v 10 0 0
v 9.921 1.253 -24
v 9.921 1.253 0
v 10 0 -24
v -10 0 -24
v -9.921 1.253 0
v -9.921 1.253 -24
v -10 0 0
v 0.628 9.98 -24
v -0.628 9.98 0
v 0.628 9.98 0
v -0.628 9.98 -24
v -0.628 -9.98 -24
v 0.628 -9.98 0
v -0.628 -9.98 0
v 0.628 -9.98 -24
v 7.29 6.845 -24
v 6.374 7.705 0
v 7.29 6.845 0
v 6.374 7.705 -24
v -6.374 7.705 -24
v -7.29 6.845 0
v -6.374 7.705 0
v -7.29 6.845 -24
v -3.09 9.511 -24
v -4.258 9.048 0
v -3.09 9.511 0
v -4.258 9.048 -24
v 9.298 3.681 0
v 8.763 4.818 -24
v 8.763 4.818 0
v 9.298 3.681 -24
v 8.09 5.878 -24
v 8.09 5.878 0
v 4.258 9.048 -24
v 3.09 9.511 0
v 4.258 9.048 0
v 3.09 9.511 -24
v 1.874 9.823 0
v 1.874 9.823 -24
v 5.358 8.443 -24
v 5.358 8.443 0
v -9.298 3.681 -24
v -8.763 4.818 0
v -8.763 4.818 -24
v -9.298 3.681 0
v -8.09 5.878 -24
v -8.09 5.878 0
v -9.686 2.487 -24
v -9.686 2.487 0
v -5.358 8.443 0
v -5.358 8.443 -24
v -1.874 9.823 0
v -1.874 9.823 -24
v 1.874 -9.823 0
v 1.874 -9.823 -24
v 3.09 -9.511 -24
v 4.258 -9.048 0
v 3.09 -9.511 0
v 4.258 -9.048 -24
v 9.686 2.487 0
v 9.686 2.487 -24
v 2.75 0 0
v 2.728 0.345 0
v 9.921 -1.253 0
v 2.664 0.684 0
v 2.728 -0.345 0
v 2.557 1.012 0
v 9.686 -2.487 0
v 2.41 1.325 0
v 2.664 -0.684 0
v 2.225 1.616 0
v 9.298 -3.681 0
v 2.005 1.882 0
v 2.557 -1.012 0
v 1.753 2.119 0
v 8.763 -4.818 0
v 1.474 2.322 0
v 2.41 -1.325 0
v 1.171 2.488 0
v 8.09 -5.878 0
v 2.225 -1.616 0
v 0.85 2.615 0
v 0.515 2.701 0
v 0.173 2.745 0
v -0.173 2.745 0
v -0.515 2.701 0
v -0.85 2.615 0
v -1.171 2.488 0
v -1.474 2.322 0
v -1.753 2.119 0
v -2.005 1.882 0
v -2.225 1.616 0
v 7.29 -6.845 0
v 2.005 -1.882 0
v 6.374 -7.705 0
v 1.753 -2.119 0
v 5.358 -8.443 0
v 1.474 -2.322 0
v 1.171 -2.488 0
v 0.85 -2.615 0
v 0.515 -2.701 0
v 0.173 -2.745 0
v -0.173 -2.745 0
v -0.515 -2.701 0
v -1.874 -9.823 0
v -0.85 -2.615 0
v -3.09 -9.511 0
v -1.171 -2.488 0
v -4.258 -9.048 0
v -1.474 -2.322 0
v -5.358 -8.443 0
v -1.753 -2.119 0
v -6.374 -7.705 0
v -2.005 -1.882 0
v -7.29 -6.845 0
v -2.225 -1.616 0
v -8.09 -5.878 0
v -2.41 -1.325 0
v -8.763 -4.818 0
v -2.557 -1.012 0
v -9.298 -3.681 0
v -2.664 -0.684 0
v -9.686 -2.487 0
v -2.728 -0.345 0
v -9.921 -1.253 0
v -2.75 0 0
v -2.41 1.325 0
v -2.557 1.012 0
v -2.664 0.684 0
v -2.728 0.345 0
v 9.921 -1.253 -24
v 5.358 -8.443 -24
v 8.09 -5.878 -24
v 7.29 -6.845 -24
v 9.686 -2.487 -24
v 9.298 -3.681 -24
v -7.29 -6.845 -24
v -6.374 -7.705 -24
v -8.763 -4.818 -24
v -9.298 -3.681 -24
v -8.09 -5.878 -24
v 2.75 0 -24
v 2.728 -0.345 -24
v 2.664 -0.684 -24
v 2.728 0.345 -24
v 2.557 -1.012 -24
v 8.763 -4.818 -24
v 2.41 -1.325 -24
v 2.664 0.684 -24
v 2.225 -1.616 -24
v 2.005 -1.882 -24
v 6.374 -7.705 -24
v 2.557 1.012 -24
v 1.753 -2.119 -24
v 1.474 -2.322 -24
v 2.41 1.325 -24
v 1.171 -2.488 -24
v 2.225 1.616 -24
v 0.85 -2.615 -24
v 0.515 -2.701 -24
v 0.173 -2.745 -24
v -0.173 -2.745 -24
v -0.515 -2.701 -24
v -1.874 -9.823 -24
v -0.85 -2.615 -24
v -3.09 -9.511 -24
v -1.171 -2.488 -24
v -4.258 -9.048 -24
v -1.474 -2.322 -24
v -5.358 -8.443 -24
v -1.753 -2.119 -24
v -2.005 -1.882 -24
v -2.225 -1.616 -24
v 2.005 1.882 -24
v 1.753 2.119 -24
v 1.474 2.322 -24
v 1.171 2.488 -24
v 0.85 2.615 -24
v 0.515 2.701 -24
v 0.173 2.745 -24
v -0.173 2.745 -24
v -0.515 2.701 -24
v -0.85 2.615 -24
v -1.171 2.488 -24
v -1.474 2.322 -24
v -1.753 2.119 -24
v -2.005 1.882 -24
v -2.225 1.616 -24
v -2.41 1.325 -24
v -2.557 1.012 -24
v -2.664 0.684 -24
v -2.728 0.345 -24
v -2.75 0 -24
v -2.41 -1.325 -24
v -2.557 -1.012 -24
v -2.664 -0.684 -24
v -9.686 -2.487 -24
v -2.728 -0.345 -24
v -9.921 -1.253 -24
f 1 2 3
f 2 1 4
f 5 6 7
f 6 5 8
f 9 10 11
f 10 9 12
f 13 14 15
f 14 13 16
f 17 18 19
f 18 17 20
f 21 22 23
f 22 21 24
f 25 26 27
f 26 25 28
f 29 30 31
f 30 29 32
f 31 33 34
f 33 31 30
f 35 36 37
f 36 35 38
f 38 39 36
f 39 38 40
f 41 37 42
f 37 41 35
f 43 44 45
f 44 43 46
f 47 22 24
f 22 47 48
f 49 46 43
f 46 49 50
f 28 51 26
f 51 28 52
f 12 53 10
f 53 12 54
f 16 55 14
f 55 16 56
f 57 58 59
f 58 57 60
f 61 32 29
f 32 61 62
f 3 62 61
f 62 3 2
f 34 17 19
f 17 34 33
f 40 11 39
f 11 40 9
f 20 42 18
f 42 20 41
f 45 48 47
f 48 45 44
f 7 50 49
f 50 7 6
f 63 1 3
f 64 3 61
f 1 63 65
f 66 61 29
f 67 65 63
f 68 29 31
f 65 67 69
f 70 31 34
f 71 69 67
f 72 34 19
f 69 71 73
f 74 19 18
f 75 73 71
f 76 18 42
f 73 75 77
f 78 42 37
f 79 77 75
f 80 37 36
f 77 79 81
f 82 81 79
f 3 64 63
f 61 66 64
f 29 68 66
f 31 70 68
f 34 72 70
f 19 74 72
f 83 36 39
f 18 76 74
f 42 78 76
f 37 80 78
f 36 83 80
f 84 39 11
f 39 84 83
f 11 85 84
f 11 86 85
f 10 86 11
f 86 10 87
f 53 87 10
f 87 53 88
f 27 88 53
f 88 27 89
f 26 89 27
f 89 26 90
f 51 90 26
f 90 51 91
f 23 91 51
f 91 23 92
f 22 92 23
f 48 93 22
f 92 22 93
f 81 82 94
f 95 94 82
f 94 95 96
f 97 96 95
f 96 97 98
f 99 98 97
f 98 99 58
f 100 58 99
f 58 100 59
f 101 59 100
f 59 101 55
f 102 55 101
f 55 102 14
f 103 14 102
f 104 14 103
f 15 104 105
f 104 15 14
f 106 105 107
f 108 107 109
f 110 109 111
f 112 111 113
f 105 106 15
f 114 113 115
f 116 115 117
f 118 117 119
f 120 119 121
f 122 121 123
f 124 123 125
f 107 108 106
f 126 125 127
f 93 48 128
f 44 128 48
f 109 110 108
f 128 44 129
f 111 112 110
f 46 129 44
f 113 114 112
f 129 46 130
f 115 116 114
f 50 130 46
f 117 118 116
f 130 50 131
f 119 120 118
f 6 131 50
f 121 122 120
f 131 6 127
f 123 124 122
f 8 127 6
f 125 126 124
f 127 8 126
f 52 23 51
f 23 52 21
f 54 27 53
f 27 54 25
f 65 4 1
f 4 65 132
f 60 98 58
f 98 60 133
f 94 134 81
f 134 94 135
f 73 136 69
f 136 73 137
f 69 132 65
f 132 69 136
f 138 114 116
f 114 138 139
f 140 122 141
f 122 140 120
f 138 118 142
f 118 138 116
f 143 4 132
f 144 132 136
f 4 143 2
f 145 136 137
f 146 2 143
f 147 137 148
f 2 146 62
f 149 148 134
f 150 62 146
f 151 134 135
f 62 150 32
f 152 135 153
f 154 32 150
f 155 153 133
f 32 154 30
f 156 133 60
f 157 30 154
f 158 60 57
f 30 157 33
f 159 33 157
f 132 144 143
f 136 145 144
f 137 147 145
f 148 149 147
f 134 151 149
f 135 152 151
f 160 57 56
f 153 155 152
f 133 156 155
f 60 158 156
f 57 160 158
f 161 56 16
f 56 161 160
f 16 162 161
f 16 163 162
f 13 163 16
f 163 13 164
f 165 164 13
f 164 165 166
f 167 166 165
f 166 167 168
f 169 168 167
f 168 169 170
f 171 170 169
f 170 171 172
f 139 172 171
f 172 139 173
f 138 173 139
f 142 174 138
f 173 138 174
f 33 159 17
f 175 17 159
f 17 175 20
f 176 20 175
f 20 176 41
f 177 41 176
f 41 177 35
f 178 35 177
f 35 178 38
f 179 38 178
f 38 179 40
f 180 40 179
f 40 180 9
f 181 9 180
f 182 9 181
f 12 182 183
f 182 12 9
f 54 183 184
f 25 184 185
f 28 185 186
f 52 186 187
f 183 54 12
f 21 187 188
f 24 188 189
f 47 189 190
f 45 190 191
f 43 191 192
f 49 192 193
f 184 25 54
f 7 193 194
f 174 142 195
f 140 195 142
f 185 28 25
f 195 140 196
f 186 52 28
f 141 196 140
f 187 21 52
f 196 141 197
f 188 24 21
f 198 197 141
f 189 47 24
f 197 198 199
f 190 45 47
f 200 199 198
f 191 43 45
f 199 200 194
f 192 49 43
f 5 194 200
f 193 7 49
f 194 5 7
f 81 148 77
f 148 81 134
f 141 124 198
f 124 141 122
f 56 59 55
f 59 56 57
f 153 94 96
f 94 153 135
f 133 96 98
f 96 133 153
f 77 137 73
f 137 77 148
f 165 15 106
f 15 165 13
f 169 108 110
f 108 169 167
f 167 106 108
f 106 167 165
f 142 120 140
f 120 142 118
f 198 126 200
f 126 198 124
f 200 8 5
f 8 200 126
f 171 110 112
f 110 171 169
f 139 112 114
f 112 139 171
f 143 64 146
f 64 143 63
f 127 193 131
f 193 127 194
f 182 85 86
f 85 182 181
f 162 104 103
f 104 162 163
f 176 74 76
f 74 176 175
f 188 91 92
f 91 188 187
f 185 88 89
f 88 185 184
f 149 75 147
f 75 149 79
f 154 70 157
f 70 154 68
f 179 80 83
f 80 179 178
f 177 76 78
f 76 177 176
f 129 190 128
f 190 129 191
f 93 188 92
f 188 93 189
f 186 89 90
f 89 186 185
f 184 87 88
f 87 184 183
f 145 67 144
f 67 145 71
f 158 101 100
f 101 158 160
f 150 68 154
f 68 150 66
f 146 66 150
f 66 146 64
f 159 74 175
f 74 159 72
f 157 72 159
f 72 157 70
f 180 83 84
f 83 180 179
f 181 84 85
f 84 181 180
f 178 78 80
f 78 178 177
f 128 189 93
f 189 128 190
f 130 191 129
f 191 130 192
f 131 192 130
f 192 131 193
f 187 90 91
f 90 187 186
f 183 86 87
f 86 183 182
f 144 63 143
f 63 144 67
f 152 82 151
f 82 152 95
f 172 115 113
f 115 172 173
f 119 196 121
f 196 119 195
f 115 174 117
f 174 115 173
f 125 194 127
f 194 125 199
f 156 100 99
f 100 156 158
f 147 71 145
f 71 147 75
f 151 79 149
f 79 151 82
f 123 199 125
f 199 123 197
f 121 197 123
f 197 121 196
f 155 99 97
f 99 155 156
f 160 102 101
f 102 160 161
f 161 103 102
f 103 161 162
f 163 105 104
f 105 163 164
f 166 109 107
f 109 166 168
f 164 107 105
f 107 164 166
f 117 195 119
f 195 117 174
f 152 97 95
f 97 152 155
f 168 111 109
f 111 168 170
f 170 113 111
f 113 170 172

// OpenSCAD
$fn = 50;


difference() {
	union() {
		translate(v = [0, 0, -24.0000000000]) {
			cylinder(h = 24, r = 10.0000000000);
		}
		cylinder(h = 0, r = 20.0000000000);
	}
	union() {
		#translate(v = [0, 0, -24]) {
			cylinder(h = 24, r = 2.7500000000);
		}
	}
}
